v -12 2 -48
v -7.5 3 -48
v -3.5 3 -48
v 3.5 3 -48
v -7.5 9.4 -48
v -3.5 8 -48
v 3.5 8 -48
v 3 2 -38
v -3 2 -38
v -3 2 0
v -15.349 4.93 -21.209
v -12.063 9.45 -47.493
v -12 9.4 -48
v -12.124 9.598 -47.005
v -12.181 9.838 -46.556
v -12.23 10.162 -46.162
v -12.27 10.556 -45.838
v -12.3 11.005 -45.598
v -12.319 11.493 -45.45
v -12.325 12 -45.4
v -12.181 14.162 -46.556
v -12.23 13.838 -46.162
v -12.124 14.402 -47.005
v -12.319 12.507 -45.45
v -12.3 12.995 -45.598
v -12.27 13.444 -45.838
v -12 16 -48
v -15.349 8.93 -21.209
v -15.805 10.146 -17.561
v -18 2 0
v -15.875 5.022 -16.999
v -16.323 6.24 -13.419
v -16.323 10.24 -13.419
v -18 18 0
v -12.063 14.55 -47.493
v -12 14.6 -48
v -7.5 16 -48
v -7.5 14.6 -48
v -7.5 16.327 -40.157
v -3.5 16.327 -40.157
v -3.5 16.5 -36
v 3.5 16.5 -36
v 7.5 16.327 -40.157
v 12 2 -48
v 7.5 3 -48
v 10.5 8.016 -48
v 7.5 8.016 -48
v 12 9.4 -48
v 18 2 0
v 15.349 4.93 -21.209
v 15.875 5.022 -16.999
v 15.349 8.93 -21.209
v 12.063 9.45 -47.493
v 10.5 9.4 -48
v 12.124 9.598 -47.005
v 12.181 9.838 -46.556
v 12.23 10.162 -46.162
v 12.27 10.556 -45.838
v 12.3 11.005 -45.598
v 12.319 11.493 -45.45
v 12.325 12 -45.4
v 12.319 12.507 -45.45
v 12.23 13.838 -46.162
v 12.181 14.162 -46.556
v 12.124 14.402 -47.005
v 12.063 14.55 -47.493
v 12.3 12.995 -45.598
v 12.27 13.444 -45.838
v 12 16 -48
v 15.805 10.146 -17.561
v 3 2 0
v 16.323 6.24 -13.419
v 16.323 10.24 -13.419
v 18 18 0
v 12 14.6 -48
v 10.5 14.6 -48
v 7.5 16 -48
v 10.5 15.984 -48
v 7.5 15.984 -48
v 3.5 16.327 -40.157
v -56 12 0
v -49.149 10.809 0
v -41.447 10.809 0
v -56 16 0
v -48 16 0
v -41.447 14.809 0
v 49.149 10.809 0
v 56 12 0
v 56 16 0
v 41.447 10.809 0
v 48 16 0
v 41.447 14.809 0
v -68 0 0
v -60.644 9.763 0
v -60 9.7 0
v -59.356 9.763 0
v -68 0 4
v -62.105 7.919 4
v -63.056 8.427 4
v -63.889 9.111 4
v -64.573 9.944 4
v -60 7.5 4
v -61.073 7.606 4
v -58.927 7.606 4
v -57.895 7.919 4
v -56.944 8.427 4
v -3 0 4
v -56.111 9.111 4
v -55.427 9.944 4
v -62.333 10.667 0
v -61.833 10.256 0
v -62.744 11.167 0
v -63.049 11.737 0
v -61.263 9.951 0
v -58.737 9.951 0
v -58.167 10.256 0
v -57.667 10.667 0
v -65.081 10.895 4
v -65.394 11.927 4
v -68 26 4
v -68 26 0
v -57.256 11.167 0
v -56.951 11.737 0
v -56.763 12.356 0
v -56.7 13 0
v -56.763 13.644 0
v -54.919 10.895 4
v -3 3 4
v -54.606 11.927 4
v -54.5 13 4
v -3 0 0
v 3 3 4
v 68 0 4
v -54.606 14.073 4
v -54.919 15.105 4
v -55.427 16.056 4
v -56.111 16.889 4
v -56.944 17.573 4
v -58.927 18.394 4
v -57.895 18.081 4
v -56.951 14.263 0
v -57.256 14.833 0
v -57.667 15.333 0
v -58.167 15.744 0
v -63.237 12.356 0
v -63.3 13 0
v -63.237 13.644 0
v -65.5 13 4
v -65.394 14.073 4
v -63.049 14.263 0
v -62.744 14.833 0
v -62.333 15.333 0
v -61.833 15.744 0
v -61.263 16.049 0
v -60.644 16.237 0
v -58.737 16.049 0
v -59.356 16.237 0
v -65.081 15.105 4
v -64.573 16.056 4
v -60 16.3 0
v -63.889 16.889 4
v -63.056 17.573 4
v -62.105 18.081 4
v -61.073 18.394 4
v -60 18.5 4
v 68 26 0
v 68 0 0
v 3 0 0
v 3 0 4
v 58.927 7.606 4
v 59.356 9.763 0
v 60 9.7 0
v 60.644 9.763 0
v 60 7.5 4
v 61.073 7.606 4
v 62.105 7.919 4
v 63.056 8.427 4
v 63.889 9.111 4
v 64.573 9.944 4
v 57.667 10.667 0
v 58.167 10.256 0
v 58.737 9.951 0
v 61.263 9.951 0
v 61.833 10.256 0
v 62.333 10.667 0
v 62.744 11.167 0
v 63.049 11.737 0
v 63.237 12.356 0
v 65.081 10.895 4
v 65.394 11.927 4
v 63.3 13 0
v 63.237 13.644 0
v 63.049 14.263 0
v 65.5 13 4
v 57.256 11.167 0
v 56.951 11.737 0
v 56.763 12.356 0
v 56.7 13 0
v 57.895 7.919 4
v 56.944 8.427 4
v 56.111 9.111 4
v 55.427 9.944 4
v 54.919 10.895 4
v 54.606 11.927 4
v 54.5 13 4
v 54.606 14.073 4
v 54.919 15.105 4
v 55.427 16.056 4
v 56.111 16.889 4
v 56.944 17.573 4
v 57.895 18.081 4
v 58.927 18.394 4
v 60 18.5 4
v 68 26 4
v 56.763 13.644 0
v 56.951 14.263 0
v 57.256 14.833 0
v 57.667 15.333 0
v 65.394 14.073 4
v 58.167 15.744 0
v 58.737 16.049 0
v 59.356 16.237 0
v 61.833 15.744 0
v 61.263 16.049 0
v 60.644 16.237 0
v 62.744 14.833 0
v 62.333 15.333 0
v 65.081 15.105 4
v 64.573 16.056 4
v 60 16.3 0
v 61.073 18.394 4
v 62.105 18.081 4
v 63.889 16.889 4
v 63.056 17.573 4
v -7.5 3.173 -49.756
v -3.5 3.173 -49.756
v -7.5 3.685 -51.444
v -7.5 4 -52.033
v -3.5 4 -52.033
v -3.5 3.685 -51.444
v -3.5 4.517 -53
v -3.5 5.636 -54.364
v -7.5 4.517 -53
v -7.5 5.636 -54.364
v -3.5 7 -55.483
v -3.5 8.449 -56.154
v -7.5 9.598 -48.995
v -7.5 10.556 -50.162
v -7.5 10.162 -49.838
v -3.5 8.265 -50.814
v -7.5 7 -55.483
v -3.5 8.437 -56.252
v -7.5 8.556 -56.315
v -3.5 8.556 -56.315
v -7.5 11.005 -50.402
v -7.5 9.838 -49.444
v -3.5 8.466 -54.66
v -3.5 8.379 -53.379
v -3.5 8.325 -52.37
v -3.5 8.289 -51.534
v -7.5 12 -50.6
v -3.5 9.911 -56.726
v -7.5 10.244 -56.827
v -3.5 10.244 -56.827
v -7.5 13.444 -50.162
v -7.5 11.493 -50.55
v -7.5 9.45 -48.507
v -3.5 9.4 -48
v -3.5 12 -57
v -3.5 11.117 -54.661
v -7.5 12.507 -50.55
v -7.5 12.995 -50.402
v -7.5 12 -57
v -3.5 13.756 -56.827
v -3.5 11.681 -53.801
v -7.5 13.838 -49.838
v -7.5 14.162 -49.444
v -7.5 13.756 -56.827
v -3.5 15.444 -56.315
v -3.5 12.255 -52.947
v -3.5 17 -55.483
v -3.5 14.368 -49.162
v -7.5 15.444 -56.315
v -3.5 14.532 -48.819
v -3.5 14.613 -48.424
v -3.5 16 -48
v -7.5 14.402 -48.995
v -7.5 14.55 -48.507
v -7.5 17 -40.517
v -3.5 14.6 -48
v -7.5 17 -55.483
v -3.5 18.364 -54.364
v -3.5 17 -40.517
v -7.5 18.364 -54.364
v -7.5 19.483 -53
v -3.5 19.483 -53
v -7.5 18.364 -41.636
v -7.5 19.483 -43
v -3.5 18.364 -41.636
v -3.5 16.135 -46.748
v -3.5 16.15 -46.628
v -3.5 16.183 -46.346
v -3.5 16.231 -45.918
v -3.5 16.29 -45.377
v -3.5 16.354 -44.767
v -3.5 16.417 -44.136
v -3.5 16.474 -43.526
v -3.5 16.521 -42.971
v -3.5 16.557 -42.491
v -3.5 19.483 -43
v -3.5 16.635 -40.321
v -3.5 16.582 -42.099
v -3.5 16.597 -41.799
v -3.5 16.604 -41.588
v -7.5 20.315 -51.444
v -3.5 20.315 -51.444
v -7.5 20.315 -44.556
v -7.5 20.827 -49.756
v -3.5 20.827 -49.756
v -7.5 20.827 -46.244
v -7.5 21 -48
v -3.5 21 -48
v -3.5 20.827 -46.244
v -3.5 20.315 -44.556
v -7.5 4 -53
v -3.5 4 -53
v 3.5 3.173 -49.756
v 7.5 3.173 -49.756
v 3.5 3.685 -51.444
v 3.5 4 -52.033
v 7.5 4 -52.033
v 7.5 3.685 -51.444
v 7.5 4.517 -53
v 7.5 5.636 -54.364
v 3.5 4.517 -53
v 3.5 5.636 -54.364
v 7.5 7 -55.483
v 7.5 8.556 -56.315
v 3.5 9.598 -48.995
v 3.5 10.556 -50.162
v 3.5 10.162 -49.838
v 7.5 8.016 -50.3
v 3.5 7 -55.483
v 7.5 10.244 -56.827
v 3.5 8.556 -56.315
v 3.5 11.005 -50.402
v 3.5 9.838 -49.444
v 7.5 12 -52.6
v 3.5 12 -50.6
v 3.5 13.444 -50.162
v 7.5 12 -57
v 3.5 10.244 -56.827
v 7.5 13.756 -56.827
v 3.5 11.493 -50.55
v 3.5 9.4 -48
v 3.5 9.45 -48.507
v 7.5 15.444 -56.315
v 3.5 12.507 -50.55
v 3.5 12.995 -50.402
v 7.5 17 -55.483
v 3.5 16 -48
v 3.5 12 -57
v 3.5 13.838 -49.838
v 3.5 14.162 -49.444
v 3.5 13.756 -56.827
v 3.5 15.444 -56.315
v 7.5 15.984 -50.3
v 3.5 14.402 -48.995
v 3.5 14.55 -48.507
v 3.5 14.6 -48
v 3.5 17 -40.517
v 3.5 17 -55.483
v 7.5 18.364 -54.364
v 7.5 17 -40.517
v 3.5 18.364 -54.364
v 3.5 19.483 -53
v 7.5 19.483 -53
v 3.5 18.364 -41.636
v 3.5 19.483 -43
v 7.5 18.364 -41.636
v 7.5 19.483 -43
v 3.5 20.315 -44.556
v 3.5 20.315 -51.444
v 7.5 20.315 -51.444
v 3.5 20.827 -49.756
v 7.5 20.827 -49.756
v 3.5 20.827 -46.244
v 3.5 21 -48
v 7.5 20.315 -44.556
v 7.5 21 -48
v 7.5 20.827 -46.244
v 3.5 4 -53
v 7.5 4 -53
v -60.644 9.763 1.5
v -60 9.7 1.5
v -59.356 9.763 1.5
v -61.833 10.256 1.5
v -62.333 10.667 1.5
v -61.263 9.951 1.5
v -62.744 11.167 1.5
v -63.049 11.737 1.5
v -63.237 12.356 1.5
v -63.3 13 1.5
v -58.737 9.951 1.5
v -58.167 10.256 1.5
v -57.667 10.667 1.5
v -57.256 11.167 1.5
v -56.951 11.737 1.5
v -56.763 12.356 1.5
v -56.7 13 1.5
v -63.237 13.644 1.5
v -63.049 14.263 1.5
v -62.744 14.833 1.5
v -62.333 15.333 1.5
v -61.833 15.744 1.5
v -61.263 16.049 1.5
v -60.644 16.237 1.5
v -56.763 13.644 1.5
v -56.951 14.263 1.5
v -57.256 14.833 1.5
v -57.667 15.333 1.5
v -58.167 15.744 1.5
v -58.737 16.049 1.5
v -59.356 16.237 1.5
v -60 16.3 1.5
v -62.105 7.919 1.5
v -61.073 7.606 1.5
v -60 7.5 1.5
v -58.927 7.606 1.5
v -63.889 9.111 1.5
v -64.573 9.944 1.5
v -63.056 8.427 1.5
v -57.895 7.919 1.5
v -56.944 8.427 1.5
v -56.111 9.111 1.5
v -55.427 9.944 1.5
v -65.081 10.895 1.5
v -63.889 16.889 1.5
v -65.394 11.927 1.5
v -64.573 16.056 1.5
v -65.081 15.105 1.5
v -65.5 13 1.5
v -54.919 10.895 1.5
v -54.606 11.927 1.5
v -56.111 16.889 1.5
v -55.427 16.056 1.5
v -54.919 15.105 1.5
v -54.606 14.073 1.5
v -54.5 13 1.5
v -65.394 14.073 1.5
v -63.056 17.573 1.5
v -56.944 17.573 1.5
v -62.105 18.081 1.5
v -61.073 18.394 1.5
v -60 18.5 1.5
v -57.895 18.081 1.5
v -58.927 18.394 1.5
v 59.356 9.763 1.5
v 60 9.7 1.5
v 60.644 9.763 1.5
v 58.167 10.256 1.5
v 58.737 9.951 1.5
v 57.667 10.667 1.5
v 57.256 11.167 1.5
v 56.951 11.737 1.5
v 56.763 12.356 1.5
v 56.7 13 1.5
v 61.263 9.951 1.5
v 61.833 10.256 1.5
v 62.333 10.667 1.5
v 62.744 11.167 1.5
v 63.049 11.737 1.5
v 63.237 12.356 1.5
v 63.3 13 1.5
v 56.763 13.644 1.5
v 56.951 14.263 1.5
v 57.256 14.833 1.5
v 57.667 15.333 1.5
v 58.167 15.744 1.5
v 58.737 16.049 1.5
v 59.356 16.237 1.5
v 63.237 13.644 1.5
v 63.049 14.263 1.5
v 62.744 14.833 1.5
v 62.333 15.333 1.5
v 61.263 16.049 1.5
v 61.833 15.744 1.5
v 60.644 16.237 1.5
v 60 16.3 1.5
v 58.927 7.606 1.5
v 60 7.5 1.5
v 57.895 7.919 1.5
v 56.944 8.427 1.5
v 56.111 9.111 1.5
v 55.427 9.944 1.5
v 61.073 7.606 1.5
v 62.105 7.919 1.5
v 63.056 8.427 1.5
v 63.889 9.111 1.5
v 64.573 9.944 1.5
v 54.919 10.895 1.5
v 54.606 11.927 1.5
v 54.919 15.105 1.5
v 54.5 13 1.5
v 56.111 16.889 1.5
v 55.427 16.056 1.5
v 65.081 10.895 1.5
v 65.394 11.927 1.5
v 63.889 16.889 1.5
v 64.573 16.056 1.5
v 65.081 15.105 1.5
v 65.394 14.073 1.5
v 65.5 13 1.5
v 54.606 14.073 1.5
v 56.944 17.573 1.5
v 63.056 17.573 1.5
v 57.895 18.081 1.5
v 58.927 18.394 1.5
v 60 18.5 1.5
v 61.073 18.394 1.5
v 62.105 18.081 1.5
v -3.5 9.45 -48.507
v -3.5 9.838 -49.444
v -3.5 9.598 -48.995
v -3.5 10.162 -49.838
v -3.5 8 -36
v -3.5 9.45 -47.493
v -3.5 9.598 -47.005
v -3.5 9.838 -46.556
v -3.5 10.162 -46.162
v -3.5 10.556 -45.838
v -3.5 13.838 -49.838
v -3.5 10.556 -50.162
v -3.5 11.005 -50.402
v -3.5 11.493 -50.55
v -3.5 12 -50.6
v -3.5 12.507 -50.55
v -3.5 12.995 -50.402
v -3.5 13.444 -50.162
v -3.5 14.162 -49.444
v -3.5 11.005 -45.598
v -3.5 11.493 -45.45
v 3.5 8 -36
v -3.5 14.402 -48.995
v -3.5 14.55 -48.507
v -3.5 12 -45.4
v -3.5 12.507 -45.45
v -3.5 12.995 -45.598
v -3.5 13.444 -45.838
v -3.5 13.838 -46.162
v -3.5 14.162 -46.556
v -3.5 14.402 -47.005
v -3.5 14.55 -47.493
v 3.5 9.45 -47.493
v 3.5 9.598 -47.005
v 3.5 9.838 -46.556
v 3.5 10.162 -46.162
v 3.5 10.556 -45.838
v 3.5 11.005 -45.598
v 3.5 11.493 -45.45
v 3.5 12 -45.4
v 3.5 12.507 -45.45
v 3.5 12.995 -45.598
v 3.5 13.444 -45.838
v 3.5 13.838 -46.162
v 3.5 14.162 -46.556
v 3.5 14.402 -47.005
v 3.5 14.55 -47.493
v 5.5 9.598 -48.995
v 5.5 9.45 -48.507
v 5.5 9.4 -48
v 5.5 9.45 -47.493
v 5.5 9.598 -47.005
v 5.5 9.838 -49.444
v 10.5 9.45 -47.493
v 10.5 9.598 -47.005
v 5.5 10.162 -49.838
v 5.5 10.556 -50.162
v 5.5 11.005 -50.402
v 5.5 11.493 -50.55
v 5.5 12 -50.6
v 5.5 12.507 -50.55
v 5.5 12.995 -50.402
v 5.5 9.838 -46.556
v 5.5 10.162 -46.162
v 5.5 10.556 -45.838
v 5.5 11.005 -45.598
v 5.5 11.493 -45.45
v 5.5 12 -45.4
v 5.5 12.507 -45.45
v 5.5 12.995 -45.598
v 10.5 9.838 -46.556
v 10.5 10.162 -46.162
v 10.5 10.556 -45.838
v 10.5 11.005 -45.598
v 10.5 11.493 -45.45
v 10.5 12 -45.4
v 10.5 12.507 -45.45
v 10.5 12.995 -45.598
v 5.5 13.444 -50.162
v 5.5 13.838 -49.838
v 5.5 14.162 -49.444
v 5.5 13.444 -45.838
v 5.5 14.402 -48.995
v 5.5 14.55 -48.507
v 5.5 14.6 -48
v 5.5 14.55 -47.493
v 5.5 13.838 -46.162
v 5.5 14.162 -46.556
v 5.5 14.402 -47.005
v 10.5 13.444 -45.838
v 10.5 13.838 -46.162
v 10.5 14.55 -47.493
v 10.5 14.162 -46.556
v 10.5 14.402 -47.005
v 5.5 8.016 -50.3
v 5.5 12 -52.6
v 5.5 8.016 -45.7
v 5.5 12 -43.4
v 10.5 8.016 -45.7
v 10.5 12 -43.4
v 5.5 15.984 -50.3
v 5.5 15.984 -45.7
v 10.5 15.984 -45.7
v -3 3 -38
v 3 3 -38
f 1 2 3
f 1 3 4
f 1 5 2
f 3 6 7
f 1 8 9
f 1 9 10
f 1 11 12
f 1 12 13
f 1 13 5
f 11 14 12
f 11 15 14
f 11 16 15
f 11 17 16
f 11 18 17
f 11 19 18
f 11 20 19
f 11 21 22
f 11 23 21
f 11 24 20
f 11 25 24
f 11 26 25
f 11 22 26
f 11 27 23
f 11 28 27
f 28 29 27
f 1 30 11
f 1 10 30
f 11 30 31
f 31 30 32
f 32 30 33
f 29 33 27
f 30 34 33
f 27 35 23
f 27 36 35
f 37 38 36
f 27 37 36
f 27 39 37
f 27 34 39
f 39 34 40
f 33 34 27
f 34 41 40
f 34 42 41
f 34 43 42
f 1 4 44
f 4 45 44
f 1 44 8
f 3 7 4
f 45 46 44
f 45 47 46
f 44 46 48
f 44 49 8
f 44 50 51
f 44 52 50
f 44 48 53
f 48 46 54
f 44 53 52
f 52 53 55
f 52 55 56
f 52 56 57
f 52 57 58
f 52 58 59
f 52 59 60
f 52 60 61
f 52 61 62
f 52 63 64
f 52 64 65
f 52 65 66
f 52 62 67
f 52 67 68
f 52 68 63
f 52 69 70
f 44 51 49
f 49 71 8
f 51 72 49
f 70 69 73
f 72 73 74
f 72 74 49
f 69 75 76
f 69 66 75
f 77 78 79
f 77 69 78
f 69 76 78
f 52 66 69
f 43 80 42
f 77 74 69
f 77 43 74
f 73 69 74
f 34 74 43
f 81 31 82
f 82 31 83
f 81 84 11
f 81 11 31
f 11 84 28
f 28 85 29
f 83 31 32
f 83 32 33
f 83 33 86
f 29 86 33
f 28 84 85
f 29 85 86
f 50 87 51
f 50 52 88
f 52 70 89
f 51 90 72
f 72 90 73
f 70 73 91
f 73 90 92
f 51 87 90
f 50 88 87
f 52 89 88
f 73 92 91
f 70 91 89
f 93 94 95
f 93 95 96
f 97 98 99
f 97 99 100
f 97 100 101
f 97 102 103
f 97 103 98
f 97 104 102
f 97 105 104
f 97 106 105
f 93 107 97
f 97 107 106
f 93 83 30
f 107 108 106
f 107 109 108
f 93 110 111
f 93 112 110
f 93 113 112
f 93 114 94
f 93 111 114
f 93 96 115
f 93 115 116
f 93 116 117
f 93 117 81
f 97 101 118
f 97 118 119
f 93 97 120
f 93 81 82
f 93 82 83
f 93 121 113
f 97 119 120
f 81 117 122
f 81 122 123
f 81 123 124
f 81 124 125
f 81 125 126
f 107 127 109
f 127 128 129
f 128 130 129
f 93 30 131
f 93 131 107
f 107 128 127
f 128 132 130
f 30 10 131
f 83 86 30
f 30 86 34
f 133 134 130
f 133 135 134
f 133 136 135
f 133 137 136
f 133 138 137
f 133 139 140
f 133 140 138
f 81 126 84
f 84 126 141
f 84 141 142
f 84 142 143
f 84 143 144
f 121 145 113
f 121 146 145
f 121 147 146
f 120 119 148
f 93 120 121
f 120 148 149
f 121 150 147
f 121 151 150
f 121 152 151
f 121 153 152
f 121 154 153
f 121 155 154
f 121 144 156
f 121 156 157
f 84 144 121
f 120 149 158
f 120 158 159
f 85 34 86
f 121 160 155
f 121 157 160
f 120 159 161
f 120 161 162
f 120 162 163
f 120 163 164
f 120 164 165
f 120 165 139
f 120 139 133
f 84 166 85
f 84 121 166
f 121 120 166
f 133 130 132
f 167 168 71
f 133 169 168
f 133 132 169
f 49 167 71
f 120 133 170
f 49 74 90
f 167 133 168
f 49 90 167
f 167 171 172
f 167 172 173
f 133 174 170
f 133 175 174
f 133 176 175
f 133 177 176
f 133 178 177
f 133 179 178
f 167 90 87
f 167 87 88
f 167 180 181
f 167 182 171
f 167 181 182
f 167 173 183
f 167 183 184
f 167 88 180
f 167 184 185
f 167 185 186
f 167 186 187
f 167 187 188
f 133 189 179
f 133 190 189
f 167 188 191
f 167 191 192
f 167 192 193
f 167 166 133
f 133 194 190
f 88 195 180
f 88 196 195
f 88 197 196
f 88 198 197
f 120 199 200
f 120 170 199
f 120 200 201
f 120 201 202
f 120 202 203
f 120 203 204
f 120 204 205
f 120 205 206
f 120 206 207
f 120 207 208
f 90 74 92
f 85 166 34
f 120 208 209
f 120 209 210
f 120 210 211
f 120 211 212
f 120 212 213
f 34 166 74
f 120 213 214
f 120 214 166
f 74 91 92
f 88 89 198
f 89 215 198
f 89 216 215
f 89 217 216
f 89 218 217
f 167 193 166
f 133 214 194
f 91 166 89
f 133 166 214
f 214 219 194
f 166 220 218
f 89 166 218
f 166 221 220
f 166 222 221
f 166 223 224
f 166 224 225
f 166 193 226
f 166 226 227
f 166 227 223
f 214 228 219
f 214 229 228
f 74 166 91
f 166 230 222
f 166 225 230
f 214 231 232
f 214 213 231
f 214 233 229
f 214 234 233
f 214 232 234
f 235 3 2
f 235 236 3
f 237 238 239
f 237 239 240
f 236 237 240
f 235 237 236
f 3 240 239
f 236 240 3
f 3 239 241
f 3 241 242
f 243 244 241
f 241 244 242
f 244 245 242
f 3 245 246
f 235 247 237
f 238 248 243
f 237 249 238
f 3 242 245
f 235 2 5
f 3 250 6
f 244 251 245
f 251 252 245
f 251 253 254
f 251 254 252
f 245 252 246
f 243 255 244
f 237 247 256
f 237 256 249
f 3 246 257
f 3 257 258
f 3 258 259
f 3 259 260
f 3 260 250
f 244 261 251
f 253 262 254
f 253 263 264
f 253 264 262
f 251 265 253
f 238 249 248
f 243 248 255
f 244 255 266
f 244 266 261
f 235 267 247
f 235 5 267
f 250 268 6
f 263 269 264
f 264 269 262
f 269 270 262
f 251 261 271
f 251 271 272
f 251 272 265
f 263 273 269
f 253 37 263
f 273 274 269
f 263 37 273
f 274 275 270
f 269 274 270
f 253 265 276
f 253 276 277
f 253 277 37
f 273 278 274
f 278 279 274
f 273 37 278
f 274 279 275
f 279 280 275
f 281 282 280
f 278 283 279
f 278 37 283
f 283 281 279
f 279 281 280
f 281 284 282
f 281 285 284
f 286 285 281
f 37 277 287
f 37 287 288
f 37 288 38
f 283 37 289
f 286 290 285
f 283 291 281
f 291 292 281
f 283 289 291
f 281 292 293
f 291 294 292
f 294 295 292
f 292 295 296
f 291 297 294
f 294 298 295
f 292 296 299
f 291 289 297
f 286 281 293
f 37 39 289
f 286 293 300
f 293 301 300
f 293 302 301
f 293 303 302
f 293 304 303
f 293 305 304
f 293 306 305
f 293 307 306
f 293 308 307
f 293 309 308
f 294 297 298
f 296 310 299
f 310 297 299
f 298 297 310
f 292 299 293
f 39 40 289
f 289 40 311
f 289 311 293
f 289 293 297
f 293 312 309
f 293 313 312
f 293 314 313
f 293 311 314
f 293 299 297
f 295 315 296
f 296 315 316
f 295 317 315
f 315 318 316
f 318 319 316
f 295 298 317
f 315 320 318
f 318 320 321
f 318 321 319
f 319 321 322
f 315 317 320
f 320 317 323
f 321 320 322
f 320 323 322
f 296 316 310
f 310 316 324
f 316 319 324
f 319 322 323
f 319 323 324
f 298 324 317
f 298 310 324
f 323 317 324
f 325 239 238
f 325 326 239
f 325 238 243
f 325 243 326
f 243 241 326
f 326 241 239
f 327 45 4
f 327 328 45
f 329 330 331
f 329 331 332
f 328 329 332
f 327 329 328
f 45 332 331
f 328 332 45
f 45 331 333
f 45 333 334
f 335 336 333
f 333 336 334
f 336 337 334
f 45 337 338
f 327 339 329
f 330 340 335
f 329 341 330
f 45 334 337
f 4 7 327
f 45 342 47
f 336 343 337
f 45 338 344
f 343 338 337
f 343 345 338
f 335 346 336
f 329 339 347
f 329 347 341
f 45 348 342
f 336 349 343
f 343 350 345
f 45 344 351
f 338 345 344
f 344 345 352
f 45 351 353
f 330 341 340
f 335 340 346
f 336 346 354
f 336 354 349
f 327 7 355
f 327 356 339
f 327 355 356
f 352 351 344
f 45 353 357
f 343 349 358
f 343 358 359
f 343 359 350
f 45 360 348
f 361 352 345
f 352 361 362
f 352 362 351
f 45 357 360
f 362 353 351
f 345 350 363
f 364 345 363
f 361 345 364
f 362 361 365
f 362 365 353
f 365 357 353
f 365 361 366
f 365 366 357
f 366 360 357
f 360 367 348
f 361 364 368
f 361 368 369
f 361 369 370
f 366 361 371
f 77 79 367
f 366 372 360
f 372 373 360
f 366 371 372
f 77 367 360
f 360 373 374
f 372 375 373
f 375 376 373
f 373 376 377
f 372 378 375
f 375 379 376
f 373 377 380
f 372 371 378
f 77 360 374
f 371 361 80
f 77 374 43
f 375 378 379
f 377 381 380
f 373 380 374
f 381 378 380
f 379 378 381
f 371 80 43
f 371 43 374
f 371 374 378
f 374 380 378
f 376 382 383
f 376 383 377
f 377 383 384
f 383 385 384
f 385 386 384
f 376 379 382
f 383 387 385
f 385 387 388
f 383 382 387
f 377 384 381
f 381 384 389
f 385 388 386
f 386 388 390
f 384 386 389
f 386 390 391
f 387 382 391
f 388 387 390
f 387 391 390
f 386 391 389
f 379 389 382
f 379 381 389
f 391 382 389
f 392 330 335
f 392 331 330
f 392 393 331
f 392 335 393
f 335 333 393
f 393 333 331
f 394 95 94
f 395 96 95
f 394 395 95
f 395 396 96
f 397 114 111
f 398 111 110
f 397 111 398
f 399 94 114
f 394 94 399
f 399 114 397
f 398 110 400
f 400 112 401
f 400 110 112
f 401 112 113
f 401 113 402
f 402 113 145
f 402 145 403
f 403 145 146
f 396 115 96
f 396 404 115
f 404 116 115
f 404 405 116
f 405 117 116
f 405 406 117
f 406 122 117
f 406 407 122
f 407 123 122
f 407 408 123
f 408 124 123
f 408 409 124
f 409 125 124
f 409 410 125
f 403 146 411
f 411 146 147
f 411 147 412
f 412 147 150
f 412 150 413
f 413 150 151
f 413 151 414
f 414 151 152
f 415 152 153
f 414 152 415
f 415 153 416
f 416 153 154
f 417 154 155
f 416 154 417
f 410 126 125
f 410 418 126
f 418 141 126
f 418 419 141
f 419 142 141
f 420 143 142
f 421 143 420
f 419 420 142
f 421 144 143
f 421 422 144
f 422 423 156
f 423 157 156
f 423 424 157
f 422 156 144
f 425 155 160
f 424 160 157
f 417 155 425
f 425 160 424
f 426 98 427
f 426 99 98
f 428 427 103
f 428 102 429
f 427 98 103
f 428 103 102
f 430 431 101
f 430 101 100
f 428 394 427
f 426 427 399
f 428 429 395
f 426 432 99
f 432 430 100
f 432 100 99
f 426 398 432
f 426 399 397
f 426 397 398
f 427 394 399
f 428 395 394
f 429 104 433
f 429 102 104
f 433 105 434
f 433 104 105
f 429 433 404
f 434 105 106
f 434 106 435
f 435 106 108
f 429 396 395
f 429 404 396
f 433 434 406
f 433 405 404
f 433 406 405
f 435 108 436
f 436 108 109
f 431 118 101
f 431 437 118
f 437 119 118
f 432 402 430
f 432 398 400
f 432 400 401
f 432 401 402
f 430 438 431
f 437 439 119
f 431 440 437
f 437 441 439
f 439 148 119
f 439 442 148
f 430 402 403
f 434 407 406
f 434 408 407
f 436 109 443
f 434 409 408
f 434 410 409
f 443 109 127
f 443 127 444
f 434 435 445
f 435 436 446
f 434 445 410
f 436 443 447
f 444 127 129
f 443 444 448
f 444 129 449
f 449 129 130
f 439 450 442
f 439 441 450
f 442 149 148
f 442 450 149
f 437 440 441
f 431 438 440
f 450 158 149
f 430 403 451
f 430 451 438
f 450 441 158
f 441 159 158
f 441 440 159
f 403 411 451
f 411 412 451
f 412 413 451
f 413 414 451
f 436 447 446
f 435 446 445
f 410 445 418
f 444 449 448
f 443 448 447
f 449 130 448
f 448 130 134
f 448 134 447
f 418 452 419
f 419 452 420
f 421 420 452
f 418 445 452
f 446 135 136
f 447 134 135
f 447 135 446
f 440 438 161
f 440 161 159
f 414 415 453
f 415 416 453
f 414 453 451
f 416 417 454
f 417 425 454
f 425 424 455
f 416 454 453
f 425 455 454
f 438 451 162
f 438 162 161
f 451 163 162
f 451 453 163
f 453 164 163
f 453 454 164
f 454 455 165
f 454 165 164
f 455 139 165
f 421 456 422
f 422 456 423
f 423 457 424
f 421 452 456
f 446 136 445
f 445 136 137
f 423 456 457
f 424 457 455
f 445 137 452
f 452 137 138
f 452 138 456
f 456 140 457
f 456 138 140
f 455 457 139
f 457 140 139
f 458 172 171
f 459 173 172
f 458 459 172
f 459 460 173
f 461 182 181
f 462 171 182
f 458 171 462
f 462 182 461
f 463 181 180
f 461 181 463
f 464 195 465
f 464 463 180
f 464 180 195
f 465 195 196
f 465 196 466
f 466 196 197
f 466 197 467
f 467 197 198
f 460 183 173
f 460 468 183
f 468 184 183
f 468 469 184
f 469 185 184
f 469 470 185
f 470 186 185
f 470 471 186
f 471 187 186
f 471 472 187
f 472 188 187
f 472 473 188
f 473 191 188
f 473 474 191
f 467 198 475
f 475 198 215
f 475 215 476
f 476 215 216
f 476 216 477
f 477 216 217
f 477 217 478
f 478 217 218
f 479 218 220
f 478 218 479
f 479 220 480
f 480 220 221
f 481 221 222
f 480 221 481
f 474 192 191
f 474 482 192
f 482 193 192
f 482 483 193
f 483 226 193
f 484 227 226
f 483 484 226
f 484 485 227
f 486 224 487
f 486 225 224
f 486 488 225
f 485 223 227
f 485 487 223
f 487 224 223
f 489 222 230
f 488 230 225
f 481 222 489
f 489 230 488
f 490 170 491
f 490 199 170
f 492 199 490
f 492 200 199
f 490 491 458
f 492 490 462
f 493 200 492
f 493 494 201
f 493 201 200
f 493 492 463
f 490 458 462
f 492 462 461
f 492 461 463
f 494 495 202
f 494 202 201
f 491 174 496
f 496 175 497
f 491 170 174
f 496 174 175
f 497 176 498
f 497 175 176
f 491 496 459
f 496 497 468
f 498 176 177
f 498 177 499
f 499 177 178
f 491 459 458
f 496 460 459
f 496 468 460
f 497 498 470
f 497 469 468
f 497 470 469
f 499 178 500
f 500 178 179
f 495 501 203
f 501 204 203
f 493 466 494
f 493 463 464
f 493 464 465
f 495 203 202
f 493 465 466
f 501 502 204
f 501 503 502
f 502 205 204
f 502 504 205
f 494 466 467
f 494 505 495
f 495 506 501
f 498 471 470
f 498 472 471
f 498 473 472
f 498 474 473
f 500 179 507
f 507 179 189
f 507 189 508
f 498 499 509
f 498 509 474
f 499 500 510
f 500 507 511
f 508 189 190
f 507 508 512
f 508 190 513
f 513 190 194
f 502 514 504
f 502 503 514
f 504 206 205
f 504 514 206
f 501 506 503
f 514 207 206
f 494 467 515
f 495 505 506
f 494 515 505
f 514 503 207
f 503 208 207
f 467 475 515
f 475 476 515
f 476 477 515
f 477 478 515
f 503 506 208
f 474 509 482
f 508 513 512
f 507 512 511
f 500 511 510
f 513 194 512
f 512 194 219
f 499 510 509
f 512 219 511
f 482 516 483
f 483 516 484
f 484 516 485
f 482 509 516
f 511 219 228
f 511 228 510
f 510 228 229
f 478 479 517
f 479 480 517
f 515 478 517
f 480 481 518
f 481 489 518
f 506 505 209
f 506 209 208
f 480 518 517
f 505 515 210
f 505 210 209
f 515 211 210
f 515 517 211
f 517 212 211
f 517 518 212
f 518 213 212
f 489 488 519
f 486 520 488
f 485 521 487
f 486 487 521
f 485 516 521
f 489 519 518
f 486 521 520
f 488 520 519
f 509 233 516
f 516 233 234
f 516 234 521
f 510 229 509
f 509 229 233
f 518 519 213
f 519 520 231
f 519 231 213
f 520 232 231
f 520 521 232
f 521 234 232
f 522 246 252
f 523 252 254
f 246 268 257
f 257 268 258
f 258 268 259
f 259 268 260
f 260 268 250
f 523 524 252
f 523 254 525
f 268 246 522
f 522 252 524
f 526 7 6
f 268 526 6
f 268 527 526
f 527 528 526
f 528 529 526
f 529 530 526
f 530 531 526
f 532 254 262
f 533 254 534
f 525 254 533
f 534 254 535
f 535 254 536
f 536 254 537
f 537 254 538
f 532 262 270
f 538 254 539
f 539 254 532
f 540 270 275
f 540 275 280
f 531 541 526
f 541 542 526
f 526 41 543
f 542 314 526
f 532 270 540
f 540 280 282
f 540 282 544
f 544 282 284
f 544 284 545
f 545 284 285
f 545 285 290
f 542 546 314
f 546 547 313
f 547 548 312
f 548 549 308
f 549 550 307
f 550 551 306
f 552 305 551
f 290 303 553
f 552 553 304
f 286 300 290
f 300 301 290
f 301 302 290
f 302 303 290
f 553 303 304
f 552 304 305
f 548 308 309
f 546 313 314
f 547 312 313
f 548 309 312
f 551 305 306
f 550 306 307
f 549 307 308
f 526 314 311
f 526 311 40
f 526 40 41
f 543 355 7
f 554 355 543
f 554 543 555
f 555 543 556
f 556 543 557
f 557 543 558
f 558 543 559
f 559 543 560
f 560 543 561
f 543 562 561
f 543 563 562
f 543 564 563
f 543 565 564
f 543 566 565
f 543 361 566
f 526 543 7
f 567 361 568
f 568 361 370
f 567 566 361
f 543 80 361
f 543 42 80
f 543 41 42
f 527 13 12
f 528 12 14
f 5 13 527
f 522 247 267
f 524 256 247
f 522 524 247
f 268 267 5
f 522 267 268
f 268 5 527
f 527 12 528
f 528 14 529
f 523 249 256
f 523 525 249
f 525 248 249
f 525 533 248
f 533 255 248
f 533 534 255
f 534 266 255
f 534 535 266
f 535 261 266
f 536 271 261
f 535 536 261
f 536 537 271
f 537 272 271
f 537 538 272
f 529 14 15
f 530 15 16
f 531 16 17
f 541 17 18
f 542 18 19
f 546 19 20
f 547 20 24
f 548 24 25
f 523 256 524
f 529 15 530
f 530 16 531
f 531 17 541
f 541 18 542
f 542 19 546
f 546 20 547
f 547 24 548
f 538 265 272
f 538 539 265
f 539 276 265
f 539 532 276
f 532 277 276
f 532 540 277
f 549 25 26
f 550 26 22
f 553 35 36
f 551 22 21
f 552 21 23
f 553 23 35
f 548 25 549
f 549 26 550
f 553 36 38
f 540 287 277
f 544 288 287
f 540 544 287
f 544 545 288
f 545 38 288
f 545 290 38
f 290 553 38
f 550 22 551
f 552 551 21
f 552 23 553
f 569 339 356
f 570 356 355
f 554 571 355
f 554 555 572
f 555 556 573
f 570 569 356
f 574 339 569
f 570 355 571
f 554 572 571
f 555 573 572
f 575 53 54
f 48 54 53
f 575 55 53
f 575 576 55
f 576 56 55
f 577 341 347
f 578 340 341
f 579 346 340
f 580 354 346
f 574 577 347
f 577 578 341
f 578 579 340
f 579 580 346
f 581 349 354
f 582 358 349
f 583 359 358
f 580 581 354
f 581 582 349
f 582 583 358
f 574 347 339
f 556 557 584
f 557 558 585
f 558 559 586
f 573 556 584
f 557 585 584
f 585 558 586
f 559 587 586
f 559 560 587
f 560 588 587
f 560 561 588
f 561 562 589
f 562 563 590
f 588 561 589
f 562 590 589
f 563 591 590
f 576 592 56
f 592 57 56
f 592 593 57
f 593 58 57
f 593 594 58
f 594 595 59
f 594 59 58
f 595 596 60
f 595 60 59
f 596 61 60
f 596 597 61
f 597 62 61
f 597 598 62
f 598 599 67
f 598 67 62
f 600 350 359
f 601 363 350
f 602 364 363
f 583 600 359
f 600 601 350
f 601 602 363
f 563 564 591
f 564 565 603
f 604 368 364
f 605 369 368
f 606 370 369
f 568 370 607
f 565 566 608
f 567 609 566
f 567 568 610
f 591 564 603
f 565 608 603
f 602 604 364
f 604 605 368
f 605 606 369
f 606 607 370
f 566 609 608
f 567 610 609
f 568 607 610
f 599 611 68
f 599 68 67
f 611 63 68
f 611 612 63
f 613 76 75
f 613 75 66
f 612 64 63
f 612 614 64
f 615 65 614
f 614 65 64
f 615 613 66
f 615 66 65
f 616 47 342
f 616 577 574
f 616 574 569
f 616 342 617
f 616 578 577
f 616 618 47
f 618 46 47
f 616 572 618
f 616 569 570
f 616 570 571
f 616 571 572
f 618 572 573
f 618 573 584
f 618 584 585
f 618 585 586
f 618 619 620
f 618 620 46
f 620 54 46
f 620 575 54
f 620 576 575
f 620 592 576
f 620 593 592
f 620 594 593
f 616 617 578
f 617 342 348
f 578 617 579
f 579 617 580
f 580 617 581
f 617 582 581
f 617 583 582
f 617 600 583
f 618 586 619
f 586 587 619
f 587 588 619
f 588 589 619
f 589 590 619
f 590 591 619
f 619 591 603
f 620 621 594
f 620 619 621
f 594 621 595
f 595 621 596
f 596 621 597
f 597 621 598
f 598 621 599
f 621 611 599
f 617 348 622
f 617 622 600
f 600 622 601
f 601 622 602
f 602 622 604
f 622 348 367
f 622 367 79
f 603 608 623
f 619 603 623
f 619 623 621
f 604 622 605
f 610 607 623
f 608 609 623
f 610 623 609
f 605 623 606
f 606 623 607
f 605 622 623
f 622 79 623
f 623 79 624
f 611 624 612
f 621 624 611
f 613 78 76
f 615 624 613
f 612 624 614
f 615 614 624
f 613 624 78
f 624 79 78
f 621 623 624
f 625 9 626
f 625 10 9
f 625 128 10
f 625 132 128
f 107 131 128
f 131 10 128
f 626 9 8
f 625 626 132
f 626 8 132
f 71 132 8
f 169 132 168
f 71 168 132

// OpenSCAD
// =============================================================================
// OpenMotorBridge - Radar License Plate Bracket (Decoupled Symmetrical Mount)
// =============================================================================
// File: hardware/cad/scad/02_pod_base/radar_license_plate_bracket.scad
// Description: Symmetrical mounting bracket attaching the Garmin Varia mmWave
//              blind-spot radar centered below the motorcycle license plate.
//              Features:
//              1. Clamps to lower M6 license plate mounting bolts.
//              2. Suspends radar below the plate with zero upward visual occlusion.
//              3. M5 GoPro-style swivel hinge for precision horizontal beam leveling.
//              4. Concealed rear cable channel for the M8 4-pin PUR radar harness.
//              5. High-rigidity truss ribbing resisting 117 cui road vibration.
// =============================================================================

include <../00_common/parameters.scad>;

PLATE_BOLT_SPACING = 120.0; // Distance between lower license plate screws (mm)
RADAR_BRACKET_W    = 136.0; // Total bracket width in Y (mm)
RADAR_DROP_Z       = 48.0;  // Drop below license plate lower edge in Z (mm)

module radar_license_plate_bracket() {
    difference() {
        union() {
            // 1. Upper Crossbar Mounting Flange (sandwiched behind license plate)
            translate([-RADAR_BRACKET_W/2.0, 0, 0])
                cube([RADAR_BRACKET_W, 26.0, 4.0], center=false);

            // 2. Monolithic Central Spine Neck (Solid continuous column from top to bottom)
            hull() {
                translate([-18.0, 2.0, 0])
                    cube([36.0, 16.0, 4.0], center=false);
                translate([-12.0, 2.0, -RADAR_DROP_Z])
                    cube([24.0, 14.0, 16.0], center=false);
            }

            // 3. Dual Swivel Hinge Lugs (Protruding forward at bottom, monolithic with spine)
            // Left lug
            translate([-7.5, 12.0, -RADAR_DROP_Z])
                rotate([0, 90, 0])
                    cylinder(r=9.0, h=4.0, center=false, $fn=32);
            translate([-7.5, 4.0, -RADAR_DROP_Z - 5.0])
                cube([4.0, 8.0, 14.0], center=false);

            // Right lug
            translate([3.5, 12.0, -RADAR_DROP_Z])
                rotate([0, 90, 0])
                    cylinder(r=9.0, h=4.0, center=false, $fn=32);
            translate([3.5, 4.0, -RADAR_DROP_Z - 5.0])
                cube([4.0, 8.0, 14.0], center=false);

            // 4. Stiffening Gussets (Diagonal structural ribs)
            hull() {
                translate([-RADAR_BRACKET_W/2.0 + 12.0, 12.0, 0])
                    cube([8.0, 4.0, 3.5], center=false);
                translate([-10.0, 4.0, -RADAR_DROP_Z * 0.5])
                    cube([6.0, 4.0, 4.0], center=false);
            }
            hull() {
                translate([RADAR_BRACKET_W/2.0 - 20.0, 12.0, 0])
                    cube([8.0, 4.0, 3.5], center=false);
                translate([4.0, 4.0, -RADAR_DROP_Z * 0.5])
                    cube([6.0, 4.0, 4.0], center=false);
            }
        }

        // --- SUBTRACTIONS ---

        // A. Dual M6 License Plate Clamping Holes
        for (sx = [-PLATE_BOLT_SPACING/2.0, PLATE_BOLT_SPACING/2.0]) {
            translate([sx, 13.0, -1.0]) {
                cylinder(r=3.3, h=8.0, center=false, $fn=32);
                translate([0, 0, 2.5])
                    cylinder(r=5.5, h=4.0, center=false, $fn=32);
            }
        }

        // B. Clevis Tab Clearance Slot (between prongs, forward of the solid spine)
        translate([-3.5, 8.0, -RADAR_DROP_Z - 12.0])
            cube([7.0, 16.0, 24.0], center=false);

        // C. M5 Swivel Hinge Pin Bore (Horizontal through both prongs)
        translate([0, 12.0, -RADAR_DROP_Z])
            rotate([0, 90, 0])
                cylinder(r=2.6, h=25.0, center=true, $fn=32);

        // D. M5 Hex Nut Pocket on Right Lug
        translate([5.5, 12.0, -RADAR_DROP_Z])
            rotate([0, 90, 0])
                cylinder(r=4.6, h=5.0, center=false, $fn=6);

        // E. Rear M8 Cable Channel on Spine Backside (Y=0, Z down to -RADAR_DROP_Z + 10)
        translate([-3.0, -0.5, -RADAR_DROP_Z + 10.0])
            cube([6.0, 3.5, RADAR_DROP_Z], center=false);
    }
}

// Standalone preview / STL export
radar_license_plate_bracket();
